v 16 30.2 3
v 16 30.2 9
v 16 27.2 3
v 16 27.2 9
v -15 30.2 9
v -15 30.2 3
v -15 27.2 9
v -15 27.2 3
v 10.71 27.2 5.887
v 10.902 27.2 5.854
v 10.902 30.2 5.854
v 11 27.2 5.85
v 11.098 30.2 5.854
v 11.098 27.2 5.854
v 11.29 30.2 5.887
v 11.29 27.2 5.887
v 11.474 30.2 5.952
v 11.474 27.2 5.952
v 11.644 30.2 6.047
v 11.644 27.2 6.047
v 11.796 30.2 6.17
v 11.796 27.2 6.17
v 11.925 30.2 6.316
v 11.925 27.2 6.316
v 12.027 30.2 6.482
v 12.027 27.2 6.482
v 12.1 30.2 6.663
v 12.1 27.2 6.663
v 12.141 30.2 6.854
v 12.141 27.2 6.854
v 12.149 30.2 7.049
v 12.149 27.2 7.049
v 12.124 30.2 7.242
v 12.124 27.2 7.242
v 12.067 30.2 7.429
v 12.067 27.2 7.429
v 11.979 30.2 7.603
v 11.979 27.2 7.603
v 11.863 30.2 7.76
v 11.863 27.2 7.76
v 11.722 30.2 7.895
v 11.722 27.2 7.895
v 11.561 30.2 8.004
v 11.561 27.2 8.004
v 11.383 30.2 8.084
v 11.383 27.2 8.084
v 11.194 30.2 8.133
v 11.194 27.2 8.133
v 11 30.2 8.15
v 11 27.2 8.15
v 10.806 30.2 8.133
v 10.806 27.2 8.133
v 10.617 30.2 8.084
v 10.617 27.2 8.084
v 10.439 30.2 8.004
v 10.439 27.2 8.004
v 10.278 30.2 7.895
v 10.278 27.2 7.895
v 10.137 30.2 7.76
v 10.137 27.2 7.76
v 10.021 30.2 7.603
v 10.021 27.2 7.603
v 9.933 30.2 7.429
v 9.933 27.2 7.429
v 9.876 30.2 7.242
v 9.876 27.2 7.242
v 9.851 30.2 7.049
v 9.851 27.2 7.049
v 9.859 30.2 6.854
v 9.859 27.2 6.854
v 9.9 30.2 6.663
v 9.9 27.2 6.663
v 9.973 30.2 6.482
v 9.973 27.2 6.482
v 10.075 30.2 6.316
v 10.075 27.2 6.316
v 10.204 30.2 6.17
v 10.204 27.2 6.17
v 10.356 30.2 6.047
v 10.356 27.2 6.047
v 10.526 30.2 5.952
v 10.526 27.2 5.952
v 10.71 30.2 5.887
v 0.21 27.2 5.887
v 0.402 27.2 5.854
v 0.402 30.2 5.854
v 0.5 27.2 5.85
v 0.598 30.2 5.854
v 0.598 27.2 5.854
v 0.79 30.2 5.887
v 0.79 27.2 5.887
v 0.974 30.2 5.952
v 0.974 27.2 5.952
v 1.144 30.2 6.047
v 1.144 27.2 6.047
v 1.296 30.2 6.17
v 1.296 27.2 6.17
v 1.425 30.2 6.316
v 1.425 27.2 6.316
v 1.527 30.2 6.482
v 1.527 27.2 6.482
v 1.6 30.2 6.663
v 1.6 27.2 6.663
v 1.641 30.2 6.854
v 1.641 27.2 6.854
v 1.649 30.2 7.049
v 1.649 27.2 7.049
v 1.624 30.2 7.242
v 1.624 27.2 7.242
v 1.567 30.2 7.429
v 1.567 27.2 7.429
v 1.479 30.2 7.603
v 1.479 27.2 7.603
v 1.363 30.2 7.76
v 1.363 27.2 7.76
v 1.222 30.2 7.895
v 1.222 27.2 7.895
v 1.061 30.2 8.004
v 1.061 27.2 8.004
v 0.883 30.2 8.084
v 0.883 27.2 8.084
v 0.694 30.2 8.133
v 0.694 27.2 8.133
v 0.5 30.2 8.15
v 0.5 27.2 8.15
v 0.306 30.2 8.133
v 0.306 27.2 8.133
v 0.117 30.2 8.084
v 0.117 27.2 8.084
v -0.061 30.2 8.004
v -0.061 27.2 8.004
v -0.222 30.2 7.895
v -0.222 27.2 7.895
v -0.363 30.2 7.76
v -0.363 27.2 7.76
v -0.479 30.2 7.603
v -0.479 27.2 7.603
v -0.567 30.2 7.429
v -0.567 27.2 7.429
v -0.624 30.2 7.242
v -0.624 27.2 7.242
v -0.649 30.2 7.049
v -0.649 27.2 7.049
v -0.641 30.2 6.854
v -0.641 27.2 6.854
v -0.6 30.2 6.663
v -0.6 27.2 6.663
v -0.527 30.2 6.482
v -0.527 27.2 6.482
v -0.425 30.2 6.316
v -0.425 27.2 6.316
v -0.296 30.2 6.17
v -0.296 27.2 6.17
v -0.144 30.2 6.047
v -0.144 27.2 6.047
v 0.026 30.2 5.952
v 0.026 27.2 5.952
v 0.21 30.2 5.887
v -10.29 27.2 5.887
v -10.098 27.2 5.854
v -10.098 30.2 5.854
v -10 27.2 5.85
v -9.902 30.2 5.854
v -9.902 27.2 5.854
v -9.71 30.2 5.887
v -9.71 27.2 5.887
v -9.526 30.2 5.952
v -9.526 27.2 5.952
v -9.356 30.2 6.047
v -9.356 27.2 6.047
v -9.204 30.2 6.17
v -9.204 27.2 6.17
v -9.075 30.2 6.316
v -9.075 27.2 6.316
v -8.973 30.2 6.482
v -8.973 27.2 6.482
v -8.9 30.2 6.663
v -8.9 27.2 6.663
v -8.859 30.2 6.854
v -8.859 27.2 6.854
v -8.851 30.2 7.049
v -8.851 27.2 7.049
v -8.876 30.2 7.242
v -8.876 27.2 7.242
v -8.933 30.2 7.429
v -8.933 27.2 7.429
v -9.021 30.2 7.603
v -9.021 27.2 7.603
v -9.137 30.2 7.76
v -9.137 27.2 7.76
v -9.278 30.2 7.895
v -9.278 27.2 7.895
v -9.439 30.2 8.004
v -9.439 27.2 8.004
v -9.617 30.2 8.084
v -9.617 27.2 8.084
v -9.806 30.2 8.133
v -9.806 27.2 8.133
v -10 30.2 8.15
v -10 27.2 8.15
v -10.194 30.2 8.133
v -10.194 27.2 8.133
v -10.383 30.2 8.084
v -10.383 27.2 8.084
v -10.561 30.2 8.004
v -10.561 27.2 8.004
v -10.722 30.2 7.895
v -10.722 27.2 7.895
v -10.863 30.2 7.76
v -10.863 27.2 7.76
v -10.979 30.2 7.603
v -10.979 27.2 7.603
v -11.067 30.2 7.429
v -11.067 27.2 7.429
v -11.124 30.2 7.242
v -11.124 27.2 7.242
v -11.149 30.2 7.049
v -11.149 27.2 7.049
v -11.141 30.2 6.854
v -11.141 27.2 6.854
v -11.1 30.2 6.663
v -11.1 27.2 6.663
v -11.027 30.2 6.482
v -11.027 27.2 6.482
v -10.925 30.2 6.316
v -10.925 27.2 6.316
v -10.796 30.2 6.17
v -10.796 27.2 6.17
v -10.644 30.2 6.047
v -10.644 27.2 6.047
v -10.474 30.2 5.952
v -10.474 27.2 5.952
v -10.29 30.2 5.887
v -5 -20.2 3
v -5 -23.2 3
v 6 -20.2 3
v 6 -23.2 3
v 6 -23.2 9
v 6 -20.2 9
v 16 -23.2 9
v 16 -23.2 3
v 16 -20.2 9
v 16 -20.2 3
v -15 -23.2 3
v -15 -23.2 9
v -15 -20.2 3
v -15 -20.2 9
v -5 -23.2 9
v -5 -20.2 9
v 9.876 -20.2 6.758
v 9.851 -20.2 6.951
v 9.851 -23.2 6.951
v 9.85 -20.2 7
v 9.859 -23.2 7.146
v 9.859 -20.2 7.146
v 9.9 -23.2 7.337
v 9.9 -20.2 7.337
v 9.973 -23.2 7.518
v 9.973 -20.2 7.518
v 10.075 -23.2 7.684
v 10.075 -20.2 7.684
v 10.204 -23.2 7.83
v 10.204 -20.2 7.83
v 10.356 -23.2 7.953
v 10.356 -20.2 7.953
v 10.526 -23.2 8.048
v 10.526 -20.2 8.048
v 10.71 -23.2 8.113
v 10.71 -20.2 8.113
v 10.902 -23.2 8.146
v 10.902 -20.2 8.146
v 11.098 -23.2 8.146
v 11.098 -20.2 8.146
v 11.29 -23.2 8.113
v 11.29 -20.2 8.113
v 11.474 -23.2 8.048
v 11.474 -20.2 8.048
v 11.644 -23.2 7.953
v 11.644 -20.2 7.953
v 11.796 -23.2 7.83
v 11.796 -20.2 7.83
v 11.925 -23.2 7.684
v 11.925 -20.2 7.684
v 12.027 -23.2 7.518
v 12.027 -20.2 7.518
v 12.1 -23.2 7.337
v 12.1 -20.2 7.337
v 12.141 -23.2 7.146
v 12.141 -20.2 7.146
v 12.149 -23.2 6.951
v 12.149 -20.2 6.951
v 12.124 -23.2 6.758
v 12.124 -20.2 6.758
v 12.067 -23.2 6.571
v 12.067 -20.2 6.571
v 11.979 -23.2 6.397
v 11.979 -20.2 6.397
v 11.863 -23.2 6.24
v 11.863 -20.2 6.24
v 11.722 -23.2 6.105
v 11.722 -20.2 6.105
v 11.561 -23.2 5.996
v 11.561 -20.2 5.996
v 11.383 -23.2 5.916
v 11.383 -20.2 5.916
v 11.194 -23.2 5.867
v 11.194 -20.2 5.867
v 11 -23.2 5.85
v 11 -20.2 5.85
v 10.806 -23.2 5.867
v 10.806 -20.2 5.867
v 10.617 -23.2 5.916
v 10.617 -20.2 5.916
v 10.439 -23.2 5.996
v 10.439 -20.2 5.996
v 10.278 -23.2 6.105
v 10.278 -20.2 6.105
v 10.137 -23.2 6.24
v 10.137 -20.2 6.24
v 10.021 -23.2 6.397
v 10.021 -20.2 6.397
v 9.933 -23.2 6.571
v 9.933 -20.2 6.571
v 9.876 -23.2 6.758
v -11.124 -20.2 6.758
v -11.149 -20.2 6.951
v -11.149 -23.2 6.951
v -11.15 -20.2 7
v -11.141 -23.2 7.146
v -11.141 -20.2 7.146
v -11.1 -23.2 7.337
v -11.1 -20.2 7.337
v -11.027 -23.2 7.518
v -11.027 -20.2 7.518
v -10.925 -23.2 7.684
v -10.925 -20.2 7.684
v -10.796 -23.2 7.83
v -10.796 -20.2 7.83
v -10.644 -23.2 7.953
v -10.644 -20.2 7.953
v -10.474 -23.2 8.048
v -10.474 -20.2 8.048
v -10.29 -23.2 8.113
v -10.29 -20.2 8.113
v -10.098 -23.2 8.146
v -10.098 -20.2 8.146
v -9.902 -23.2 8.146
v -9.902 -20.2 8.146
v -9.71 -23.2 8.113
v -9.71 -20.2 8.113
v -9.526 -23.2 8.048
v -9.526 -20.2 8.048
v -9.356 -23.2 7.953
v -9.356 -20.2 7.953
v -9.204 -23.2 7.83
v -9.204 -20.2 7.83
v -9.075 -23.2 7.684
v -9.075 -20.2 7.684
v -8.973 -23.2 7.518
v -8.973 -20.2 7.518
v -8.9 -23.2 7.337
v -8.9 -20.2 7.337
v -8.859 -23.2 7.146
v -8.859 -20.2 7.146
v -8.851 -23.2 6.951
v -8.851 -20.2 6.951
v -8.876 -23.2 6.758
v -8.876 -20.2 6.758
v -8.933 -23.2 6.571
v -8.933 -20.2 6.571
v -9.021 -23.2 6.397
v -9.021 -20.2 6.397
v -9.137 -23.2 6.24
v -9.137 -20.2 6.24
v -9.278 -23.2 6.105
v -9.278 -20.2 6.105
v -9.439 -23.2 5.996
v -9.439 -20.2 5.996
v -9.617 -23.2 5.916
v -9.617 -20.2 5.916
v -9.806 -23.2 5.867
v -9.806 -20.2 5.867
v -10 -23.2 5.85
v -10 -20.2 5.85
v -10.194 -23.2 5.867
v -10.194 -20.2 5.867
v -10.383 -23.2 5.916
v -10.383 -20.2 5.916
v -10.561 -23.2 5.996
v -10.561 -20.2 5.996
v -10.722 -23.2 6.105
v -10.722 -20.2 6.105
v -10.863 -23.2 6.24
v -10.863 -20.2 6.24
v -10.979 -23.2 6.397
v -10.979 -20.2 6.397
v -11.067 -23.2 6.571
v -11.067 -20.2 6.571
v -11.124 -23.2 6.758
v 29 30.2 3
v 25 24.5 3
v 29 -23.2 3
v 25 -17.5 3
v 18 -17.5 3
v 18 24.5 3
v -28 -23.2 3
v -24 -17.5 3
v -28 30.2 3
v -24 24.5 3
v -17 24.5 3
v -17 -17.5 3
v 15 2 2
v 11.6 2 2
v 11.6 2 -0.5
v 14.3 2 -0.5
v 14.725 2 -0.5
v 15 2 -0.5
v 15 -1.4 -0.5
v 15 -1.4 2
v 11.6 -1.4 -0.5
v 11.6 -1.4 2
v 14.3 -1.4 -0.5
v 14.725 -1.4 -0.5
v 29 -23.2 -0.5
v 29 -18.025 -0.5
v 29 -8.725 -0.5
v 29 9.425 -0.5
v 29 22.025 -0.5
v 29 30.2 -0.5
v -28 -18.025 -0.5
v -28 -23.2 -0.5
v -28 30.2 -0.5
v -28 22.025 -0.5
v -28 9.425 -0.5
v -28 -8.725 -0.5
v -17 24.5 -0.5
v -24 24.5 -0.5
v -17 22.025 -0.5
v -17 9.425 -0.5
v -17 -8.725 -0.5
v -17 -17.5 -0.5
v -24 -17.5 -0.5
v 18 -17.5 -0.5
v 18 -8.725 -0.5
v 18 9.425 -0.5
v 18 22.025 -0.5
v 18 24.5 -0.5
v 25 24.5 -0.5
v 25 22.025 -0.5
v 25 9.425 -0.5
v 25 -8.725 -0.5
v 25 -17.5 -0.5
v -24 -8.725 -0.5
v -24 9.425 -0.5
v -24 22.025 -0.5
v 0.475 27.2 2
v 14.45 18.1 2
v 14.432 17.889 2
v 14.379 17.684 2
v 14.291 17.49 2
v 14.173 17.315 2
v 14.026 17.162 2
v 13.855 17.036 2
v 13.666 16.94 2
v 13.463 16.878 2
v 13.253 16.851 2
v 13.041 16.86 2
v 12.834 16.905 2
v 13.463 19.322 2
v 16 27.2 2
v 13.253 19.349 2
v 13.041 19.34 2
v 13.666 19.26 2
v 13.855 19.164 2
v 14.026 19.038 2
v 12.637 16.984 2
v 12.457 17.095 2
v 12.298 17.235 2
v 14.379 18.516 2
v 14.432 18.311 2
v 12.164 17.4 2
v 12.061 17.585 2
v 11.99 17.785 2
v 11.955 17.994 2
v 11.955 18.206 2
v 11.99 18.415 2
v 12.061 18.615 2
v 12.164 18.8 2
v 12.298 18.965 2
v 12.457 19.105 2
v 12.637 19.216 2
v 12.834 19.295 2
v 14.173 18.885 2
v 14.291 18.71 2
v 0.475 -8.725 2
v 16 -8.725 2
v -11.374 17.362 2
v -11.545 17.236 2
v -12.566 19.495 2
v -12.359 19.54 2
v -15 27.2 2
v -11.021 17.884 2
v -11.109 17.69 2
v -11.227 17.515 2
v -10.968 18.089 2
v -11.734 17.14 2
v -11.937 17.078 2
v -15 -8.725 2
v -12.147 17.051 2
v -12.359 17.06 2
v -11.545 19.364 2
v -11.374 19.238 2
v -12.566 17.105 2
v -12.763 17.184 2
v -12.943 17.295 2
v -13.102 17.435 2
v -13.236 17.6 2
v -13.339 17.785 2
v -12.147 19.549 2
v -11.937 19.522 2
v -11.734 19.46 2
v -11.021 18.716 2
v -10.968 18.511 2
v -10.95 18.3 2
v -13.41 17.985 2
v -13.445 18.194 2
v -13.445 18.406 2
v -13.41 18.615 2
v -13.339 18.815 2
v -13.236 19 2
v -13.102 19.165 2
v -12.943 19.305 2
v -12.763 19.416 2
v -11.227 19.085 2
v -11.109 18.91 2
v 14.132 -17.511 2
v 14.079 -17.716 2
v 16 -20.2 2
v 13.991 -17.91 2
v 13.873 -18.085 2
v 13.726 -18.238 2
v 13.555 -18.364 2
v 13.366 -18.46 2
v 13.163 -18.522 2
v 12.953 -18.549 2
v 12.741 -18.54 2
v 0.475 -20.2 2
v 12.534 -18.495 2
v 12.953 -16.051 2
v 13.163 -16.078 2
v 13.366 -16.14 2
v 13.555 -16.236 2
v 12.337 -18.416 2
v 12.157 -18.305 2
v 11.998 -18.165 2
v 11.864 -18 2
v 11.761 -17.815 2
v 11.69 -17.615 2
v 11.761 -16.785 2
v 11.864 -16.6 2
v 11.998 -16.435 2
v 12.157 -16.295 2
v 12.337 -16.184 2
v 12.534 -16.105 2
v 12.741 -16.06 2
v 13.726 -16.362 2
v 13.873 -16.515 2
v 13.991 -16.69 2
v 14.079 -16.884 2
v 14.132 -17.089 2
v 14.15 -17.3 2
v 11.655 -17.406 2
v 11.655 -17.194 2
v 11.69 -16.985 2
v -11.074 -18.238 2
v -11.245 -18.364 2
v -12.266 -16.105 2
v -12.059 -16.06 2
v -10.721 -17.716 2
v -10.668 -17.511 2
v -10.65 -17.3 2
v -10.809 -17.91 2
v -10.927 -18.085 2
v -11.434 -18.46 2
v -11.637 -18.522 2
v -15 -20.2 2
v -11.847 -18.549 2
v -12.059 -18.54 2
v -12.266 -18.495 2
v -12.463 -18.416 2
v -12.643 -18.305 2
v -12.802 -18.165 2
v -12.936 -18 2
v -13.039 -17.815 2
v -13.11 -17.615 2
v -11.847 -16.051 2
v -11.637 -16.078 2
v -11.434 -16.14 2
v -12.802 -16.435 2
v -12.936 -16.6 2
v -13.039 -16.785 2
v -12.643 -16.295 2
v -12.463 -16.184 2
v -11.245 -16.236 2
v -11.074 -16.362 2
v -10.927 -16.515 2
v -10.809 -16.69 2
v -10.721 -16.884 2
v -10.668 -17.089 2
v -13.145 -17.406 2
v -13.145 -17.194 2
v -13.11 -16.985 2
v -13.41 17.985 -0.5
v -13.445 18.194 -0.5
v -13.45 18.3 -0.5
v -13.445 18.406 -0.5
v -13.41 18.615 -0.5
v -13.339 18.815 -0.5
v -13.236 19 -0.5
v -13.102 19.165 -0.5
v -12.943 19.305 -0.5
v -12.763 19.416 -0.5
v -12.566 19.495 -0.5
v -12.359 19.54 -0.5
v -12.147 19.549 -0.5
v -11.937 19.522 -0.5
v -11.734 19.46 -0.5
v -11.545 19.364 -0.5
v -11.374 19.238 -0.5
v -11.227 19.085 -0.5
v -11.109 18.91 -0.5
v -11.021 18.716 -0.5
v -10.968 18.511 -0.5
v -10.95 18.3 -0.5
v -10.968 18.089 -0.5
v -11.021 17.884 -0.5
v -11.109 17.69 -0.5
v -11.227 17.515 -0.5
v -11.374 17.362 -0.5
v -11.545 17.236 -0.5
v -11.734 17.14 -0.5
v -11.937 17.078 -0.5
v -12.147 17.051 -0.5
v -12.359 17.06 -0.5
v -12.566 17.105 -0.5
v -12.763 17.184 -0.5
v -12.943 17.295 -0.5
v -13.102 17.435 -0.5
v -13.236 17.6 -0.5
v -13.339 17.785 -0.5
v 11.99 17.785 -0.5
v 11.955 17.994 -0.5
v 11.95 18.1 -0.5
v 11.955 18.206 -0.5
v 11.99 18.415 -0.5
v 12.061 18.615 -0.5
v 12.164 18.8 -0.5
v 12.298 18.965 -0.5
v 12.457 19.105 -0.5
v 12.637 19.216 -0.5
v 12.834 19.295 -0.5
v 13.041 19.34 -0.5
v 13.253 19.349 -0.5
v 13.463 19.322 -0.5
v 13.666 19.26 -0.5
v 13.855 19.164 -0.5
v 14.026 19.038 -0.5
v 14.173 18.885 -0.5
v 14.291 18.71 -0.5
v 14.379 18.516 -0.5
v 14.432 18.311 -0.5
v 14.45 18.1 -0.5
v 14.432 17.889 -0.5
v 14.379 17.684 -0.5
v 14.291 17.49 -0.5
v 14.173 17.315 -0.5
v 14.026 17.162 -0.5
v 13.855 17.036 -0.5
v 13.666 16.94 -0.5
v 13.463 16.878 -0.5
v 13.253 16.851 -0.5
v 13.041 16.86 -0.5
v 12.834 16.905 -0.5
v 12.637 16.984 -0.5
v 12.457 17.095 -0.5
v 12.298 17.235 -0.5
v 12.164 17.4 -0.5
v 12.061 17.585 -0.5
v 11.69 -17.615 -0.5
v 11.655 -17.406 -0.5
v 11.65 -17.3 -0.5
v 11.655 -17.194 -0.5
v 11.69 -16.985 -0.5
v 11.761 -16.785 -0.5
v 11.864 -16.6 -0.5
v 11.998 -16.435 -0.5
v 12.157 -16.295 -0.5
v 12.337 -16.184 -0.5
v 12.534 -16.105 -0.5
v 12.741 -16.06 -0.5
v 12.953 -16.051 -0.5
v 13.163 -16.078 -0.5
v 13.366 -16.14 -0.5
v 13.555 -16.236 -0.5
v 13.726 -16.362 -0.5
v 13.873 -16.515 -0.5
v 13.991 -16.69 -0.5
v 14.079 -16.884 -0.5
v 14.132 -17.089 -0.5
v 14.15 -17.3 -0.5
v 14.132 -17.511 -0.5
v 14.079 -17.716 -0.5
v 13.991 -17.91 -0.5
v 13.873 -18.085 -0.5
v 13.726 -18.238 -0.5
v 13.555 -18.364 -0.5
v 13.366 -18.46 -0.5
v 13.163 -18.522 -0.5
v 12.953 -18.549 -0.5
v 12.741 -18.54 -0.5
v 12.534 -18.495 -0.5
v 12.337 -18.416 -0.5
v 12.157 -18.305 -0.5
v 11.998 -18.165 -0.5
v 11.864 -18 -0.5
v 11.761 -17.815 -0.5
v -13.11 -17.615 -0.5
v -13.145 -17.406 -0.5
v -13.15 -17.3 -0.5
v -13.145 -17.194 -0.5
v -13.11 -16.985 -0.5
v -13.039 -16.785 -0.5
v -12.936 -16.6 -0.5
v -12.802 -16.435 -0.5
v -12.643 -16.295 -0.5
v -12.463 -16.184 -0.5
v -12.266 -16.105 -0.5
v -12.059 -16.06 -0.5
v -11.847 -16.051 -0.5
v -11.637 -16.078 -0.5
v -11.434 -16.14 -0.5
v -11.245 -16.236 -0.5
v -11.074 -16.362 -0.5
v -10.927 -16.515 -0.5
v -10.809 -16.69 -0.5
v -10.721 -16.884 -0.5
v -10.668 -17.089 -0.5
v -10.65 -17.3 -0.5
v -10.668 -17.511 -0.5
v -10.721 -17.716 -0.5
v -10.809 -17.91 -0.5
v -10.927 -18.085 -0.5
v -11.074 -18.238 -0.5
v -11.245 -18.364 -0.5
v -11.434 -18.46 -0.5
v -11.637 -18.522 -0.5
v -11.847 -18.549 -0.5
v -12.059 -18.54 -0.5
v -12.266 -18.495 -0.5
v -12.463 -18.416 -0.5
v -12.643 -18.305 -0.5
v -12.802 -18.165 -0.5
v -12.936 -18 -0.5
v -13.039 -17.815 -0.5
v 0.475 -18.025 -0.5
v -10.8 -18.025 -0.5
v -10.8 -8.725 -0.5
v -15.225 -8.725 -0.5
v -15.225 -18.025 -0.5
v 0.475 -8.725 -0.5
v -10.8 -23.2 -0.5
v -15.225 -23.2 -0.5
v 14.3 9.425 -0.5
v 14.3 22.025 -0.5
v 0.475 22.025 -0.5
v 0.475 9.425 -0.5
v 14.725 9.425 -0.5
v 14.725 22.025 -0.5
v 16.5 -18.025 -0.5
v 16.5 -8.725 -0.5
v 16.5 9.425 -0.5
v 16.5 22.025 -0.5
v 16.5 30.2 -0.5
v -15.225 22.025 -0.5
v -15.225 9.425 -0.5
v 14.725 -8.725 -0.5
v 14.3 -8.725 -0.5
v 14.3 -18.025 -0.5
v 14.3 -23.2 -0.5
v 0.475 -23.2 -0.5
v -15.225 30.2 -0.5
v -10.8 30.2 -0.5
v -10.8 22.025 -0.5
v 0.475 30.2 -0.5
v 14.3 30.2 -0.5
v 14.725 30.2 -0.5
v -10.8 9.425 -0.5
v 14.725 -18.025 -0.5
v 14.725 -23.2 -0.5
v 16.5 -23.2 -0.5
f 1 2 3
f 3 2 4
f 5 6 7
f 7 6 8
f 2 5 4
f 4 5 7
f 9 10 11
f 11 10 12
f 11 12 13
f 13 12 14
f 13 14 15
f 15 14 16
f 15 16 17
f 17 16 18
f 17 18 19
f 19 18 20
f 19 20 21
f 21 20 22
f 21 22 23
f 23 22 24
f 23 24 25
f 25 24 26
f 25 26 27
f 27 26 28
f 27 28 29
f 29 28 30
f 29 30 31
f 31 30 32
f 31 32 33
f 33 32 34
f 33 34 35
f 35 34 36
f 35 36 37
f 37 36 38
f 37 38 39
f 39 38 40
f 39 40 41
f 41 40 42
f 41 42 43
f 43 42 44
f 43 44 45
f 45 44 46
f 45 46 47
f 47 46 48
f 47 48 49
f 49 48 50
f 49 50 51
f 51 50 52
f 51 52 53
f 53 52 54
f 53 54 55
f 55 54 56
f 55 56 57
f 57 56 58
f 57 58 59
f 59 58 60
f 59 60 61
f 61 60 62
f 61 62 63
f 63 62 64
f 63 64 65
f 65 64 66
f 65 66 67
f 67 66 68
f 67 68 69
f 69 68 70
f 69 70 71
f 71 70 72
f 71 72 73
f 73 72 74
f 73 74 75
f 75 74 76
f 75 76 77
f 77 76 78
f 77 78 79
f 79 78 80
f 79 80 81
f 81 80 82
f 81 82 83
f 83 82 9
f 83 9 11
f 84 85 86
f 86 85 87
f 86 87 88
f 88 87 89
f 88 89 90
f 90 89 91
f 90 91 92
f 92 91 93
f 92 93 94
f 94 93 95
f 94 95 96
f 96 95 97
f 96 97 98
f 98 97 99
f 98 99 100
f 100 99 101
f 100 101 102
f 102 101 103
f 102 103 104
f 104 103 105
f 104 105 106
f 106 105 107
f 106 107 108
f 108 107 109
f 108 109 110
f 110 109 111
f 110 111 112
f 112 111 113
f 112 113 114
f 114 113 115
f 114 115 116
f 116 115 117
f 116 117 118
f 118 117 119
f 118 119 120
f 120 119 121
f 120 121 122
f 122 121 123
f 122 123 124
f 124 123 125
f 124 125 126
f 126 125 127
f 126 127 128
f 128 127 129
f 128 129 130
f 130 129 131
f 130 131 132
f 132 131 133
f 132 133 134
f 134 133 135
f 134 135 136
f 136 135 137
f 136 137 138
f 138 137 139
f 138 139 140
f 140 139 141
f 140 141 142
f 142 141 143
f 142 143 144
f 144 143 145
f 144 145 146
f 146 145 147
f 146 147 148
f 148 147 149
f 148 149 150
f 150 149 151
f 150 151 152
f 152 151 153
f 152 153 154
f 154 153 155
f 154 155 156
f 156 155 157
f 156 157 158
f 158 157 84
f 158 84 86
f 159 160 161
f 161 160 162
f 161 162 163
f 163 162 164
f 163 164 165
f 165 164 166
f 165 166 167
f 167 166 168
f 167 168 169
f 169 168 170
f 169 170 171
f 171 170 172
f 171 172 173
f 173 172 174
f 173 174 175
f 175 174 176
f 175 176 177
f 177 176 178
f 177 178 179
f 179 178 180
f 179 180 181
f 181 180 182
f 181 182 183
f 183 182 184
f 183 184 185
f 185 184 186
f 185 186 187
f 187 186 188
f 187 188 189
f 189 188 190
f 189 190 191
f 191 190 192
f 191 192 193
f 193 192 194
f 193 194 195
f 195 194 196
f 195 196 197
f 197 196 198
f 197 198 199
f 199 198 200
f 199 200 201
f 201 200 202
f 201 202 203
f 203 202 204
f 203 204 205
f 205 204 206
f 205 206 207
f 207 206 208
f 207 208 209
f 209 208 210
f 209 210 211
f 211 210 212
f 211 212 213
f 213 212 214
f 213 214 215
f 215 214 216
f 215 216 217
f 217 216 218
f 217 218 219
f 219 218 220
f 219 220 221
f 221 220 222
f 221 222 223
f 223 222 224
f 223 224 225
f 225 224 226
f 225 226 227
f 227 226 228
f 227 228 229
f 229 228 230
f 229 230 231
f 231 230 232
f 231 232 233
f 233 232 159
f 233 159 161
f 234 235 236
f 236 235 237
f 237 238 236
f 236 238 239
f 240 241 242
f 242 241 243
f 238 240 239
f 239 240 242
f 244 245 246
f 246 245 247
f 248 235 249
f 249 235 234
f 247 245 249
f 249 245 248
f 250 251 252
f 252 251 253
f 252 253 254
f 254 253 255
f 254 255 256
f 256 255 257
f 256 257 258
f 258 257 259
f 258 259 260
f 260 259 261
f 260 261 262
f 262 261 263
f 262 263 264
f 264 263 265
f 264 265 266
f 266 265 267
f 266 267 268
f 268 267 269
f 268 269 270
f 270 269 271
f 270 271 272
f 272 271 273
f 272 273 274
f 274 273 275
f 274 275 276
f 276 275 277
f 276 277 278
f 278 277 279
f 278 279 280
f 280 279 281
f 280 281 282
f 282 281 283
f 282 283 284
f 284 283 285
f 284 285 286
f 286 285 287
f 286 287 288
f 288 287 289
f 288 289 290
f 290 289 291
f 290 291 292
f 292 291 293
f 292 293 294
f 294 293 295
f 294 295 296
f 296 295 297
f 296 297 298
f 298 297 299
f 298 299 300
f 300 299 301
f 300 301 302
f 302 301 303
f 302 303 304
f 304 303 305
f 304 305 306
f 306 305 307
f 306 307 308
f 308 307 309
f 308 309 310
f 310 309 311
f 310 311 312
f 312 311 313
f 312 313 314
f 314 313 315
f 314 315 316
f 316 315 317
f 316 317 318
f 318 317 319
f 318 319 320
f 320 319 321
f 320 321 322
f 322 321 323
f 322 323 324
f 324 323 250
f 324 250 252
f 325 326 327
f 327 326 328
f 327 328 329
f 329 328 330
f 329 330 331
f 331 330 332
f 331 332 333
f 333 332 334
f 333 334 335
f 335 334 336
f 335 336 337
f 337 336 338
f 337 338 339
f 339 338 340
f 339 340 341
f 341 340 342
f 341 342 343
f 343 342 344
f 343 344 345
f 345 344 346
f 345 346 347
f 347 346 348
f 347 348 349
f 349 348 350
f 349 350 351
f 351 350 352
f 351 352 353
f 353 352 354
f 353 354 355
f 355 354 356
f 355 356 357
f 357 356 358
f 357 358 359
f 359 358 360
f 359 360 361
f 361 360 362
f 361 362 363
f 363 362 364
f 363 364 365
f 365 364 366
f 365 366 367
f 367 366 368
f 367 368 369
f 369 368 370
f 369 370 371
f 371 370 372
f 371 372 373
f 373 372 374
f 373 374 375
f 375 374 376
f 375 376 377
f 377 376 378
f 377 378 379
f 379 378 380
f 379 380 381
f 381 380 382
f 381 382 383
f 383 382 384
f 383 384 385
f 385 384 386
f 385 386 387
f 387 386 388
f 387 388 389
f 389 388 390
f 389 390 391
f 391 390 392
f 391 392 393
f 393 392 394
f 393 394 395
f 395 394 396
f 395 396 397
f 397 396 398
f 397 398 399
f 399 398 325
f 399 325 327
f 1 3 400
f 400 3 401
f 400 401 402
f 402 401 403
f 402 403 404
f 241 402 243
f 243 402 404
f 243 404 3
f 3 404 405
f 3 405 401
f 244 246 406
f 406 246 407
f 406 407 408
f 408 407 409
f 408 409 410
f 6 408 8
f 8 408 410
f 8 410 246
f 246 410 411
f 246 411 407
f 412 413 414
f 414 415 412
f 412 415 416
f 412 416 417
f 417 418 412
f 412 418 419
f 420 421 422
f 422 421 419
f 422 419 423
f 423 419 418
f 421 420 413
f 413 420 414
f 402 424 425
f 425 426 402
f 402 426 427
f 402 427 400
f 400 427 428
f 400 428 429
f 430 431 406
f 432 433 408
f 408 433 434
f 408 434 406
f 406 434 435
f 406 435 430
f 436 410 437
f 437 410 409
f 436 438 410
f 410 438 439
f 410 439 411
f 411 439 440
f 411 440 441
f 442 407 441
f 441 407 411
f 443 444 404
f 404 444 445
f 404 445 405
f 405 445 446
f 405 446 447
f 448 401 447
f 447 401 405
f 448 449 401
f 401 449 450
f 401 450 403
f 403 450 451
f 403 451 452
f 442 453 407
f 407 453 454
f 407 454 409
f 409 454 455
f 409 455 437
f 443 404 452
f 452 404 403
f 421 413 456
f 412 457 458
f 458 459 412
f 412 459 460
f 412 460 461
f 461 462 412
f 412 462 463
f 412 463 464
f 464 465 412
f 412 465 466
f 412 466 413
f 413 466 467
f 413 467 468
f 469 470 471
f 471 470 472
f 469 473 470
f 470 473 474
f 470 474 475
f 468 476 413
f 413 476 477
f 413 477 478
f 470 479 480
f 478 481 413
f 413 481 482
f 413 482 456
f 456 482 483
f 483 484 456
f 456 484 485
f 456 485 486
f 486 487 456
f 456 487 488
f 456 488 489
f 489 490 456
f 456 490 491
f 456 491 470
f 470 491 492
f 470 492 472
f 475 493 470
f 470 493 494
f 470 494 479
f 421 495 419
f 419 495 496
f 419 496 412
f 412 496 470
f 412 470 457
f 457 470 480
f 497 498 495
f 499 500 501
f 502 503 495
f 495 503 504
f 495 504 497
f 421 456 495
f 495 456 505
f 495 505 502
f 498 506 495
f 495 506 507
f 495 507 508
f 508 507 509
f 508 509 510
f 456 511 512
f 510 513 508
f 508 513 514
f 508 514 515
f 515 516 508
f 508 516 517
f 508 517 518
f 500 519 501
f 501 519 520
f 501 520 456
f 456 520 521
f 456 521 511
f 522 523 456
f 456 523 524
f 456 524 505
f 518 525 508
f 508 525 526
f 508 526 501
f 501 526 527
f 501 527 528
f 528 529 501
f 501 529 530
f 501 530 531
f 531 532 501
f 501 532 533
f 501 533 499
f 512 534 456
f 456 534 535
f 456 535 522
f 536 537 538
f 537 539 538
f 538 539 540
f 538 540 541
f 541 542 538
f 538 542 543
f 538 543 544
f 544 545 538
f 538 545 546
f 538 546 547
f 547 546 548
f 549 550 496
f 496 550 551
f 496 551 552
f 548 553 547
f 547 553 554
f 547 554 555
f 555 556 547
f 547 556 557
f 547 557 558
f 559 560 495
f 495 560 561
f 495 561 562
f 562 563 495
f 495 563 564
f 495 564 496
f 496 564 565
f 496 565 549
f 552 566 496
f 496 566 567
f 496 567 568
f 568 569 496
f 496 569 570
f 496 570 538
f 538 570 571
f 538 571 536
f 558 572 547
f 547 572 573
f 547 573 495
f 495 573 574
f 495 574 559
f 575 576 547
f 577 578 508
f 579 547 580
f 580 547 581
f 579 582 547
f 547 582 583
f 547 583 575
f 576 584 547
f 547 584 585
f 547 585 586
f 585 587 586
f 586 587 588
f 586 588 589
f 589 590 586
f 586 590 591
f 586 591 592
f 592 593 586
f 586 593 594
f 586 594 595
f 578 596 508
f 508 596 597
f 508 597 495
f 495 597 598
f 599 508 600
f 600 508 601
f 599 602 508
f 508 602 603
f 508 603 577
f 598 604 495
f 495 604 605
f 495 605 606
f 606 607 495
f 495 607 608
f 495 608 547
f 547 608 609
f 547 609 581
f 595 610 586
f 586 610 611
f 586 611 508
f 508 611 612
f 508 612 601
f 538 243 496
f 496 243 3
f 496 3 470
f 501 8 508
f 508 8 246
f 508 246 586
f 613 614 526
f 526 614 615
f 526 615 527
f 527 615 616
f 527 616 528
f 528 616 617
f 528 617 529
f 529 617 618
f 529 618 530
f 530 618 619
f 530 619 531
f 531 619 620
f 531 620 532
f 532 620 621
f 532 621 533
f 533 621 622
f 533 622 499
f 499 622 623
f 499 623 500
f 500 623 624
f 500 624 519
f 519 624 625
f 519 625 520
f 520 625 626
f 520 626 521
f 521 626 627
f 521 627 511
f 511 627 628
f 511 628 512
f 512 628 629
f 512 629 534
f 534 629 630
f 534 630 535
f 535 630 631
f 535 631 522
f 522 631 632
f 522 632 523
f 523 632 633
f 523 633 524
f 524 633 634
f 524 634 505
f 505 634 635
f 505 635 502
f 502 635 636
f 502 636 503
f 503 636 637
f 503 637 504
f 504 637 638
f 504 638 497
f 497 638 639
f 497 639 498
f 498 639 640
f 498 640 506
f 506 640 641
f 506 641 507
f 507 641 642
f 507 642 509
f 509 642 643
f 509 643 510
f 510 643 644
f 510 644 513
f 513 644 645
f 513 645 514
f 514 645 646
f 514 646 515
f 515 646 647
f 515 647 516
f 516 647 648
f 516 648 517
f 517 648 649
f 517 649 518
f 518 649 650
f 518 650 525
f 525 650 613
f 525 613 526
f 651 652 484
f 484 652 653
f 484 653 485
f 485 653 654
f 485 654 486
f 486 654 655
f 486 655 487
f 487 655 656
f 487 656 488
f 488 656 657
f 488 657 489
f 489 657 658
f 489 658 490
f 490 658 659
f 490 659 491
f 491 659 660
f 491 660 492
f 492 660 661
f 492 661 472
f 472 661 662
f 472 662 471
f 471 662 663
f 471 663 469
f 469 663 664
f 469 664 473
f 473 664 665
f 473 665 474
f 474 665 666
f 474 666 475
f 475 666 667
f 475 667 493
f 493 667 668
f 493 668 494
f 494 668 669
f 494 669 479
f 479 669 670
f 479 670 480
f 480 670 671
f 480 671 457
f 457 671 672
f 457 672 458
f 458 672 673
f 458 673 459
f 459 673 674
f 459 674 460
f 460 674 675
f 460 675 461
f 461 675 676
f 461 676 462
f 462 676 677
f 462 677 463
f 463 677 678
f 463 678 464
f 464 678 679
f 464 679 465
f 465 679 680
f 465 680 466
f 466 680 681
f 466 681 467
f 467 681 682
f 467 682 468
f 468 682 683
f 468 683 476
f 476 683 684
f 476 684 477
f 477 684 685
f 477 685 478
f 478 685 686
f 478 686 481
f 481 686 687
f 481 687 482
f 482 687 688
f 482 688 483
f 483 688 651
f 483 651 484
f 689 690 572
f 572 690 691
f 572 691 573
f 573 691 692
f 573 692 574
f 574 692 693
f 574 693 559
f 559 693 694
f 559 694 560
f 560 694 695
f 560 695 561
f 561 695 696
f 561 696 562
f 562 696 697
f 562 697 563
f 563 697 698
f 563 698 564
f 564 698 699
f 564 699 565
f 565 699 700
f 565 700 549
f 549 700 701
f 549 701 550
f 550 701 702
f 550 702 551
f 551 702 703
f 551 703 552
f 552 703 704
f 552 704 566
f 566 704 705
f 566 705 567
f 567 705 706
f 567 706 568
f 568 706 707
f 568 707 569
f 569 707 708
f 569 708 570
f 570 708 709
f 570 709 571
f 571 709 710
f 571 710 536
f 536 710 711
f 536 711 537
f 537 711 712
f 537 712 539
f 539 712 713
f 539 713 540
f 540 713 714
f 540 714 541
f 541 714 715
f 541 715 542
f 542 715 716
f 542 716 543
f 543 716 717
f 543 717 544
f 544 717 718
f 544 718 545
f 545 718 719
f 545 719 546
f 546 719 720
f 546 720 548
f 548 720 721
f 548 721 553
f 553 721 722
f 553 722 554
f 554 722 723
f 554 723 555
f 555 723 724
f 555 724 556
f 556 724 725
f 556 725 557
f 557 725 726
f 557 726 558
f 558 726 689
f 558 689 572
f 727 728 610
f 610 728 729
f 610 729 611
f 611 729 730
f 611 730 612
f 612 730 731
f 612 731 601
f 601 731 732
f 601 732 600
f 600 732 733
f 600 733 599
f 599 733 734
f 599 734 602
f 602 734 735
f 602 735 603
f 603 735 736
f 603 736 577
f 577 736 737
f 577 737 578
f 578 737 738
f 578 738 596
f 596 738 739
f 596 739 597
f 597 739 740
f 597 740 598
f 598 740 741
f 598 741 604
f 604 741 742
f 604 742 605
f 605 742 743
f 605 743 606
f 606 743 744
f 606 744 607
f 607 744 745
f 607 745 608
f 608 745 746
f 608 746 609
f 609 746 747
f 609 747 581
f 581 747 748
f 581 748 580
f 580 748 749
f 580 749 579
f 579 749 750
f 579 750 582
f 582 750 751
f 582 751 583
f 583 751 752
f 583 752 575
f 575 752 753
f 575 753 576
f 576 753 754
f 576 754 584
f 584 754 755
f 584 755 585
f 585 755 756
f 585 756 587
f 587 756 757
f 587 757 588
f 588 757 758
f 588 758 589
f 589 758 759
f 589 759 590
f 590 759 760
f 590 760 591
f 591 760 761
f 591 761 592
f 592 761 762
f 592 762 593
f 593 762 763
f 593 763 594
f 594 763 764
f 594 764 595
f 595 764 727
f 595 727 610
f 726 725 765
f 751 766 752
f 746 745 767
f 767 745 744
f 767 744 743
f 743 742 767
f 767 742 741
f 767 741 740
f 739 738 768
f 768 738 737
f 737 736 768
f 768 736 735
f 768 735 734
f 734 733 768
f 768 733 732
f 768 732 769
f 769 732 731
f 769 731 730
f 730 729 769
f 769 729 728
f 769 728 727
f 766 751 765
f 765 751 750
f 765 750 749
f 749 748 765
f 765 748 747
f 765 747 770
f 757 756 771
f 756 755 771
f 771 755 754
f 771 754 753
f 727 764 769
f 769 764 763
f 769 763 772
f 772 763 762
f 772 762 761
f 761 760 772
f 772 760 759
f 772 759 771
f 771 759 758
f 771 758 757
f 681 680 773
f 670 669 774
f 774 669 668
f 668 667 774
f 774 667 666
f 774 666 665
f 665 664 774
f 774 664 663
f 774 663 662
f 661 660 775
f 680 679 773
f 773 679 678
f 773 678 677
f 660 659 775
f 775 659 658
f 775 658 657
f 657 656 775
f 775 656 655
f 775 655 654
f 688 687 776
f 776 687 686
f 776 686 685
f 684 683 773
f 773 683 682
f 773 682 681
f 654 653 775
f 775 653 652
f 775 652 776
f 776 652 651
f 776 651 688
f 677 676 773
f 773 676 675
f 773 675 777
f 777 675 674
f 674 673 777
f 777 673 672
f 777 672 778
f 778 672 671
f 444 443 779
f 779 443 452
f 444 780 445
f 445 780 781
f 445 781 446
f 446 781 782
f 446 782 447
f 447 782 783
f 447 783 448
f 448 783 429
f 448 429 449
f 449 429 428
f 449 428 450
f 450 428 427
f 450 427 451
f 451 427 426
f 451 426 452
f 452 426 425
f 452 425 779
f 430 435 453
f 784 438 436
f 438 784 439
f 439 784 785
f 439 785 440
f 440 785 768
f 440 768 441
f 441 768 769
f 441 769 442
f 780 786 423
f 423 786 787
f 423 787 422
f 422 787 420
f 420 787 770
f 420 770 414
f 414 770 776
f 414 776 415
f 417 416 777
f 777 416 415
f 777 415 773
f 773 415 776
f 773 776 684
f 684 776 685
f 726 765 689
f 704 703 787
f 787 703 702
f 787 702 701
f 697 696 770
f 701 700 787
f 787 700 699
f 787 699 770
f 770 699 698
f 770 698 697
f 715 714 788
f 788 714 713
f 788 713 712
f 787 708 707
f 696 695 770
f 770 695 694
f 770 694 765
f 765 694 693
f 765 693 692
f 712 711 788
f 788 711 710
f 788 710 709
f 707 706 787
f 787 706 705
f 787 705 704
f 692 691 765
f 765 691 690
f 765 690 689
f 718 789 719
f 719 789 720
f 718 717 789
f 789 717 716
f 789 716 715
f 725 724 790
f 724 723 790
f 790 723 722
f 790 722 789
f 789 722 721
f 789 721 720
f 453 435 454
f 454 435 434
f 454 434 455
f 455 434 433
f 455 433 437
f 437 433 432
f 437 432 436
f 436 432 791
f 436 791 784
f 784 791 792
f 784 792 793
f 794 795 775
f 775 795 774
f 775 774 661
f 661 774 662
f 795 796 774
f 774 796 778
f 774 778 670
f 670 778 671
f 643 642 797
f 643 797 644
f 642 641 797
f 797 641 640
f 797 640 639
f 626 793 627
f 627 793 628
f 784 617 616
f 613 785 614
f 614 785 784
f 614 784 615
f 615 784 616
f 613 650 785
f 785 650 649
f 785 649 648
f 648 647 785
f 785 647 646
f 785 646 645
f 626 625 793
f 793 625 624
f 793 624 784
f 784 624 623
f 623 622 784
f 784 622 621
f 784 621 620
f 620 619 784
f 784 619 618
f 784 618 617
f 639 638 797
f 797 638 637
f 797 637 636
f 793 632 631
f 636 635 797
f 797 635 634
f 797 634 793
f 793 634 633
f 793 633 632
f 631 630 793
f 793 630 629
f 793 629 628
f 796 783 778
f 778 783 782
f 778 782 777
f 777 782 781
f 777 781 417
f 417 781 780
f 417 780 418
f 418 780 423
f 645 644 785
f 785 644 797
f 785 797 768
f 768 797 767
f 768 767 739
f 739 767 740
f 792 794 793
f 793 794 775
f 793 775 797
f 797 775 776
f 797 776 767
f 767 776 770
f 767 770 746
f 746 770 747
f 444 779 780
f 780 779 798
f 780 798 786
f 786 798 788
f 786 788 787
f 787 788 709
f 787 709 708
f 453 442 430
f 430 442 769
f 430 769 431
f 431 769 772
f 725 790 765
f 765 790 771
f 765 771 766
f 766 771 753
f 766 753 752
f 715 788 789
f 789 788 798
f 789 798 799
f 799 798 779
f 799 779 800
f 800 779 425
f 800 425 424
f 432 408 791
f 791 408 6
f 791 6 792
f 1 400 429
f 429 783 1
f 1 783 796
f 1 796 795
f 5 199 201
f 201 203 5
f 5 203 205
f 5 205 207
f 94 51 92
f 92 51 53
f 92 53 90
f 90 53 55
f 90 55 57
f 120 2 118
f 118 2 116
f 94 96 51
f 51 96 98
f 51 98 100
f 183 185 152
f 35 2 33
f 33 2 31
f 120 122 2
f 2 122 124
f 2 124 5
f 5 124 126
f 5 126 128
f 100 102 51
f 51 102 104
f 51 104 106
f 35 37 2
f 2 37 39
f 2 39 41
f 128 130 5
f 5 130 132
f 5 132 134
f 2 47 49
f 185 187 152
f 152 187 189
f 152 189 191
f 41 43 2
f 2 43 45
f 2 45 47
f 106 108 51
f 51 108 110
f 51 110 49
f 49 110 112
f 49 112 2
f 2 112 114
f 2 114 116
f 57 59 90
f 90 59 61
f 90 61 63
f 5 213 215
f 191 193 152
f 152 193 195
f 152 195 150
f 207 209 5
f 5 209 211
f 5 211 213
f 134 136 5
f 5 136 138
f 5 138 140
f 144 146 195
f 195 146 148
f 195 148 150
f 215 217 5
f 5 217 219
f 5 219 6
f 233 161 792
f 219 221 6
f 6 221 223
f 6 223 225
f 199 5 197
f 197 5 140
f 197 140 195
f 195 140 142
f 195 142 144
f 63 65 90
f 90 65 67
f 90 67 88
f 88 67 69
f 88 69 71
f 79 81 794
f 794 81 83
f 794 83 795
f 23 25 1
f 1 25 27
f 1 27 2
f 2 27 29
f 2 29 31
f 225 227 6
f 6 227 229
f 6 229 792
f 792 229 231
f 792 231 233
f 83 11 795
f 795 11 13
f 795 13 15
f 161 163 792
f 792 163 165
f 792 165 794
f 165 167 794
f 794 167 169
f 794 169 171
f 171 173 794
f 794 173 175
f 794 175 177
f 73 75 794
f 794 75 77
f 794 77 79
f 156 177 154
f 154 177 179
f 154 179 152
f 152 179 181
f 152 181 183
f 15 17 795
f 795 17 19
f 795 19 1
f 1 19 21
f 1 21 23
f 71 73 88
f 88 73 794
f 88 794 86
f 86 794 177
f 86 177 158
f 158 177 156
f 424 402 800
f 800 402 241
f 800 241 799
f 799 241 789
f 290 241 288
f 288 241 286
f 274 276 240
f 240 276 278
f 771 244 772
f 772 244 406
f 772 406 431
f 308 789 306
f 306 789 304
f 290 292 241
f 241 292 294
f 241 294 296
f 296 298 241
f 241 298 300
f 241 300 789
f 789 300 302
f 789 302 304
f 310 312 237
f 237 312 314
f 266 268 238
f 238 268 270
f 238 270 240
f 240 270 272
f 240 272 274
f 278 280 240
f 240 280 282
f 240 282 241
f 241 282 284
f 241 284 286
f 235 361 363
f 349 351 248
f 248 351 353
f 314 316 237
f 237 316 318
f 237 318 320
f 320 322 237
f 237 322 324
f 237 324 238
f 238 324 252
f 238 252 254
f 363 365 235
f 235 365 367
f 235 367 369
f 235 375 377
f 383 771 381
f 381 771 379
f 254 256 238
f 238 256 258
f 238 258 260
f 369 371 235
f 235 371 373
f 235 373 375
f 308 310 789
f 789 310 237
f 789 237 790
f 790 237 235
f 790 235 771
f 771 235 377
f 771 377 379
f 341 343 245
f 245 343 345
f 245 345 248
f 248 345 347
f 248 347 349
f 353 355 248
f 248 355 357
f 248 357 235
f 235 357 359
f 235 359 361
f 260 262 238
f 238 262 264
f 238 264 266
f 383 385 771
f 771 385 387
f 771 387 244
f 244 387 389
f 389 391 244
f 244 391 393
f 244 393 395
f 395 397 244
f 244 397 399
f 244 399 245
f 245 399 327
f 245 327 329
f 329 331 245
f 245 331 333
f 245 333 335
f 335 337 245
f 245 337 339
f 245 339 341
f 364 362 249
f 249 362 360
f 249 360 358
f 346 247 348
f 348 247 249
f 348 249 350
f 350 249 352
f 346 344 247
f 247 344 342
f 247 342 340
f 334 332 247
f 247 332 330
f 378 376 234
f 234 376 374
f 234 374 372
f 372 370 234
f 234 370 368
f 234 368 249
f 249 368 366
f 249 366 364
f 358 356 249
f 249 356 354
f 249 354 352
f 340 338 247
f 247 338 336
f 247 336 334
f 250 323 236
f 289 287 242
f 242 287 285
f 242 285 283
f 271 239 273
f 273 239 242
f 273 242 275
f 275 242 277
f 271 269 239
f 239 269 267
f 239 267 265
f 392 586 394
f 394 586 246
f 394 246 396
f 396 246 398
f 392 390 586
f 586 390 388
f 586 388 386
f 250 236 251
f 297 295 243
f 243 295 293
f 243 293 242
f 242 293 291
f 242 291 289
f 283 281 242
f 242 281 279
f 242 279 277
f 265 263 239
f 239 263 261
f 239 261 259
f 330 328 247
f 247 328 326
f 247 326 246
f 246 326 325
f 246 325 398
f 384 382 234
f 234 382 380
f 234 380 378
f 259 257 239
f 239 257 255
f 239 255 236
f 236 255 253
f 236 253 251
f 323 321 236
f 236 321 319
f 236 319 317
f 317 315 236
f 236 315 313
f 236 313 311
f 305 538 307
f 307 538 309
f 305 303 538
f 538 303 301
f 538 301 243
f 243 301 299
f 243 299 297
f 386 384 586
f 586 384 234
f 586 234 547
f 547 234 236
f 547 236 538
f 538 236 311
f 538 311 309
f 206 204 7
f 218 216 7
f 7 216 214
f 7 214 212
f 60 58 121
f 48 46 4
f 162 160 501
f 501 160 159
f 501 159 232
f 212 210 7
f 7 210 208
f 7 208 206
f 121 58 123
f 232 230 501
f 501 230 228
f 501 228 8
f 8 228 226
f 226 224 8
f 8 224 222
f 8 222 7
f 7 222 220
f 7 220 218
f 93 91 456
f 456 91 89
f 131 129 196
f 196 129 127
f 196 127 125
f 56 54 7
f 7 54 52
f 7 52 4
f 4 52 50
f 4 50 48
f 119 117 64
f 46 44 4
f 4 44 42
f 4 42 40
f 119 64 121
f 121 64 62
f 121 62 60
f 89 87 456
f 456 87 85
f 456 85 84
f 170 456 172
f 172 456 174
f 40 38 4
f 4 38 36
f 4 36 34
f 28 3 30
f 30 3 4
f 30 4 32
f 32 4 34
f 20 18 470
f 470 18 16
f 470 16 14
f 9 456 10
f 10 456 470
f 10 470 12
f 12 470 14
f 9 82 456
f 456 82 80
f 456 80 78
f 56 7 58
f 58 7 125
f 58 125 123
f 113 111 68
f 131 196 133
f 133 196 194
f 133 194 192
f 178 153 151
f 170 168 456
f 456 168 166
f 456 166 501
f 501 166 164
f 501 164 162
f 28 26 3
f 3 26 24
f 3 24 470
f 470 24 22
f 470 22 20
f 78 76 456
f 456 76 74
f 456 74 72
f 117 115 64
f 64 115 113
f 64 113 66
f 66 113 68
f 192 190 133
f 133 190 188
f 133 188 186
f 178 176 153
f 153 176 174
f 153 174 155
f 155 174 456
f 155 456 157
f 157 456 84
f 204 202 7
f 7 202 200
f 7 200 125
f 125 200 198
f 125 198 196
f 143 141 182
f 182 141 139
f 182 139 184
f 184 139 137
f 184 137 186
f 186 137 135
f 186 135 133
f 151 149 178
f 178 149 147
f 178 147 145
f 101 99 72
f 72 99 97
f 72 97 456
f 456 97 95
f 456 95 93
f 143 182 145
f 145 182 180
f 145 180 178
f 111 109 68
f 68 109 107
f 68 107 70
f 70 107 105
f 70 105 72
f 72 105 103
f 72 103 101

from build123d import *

# Parameters (mm, degrees)
SKETCH_1_W          = 57
SKETCH_1_H          = 51
SKETCH_1_W_2        = 3.4
SKETCH_1_H_2        = 3.4
SKETCH_1_W_3        = 7
SKETCH_1_H_3        = 42
EXTRUDE_1_DEPTH     = 3
SKETCH_2_W          = 31
SKETCH_2_H          = 47
CUT_EXTRUDE_1_DEPTH = 1
SKETCH_3_R          = 1.25
CUT_EXTRUDE_2_DEPTH = 42.060930335
SKETCH_5_W          = 57
SKETCH_5_H          = 3
EXTRUDE_2_DEPTH     = 1
SKETCH_6_W          = 57
SKETCH_6_H          = 3
EXTRUDE_3_DEPTH     = 1
SKETCH_7_W          = 10
SKETCH_7_H          = 3
EXTRUDE_4_DEPTH     = 6
SKETCH_8_W          = 31
SKETCH_8_H          = 3
EXTRUDE_5_DEPTH     = 6
CUT_EXTRUDE_3_REACH = 63.082
SKETCH_9_R          = 1.15
CUT_EXTRUDE_4_REACH = 63.082
SKETCH_10_R         = 1.15
SKETCH_12_W         = 57
SKETCH_12_H         = 53
SKETCH_12_R         = 1.25
SKETCH_12_W_2       = 3.4
SKETCH_12_H_2       = 3.4
SKETCH_12_W_3       = 7
SKETCH_12_H_3       = 42
EXTRUDE_6_DEPTH     = 0.5
EXTRUDE_START       = 0.2
SKETCH_13_R         = 1.15
EXTRUDE_7_DEPTH     = 0.2
SKETCH_14_R         = 1.15
EXTRUDE_8_DEPTH     = 0.2
SKETCH_15_R         = 1.15
CUT_EXTRUDE_5_DEPTH = 0.2
CUT_EXTRUDE_START   = -0.2
SKETCH_16_R         = 1.15
CUT_EXTRUDE_6_DEPTH = 0.2


with BuildPart() as part:
    # 草图1 → 凸台-拉伸1 (new body)
    with BuildSketch(Plane.XY):
        with Locations((0.5, 3.5)):
            Rectangle(SKETCH_1_W, SKETCH_1_H)
        with Locations((13.3, 0.3)):
            Rectangle(SKETCH_1_W_2, SKETCH_1_H_2, mode=Mode.SUBTRACT)
        with Locations((21.5, 3.5)):
            Rectangle(SKETCH_1_W_3, SKETCH_1_H_3, mode=Mode.SUBTRACT)
        with Locations((-20.5, 3.5)):
            Rectangle(SKETCH_1_W_3, SKETCH_1_H_3, mode=Mode.SUBTRACT)
    extrude(amount=EXTRUDE_1_DEPTH)

    # 草图2 → 切除-拉伸1 (cut)
    with BuildSketch(Plane.XY.offset(3)):
        with Locations((0.5, 3.5)):
            Rectangle(SKETCH_2_W, SKETCH_2_H)
    extrude(amount=-CUT_EXTRUDE_1_DEPTH, mode=Mode.SUBTRACT)

    # 草图3 → 切除-拉伸2 (cut, through all)
    with BuildSketch(Plane.XY.offset(2)):
        with Locations((-12.2, 18.3)):
            Circle(SKETCH_3_R)
        with Locations((13.2, 18.1)):
            Circle(SKETCH_3_R)
        with Locations((12.9, -17.3)):
            Circle(SKETCH_3_R)
        with Locations((-11.9, -17.3)):
            Circle(SKETCH_3_R)
    extrude(amount=-CUT_EXTRUDE_2_DEPTH, mode=Mode.SUBTRACT)

    # 草图5 → 凸台-拉伸2 (add)
    with BuildSketch(Plane(origin=(0, 29, 0), x_dir=(1, 0, 0), z_dir=(0, 1, 0))):
        with Locations((0.5, -1.5)):
            Rectangle(SKETCH_5_W, SKETCH_5_H)
    extrude(amount=EXTRUDE_2_DEPTH)

    # 草图6 → 凸台-拉伸3 (add)
    with BuildSketch(Plane(origin=(0, -22, 0), x_dir=(-1, 0, 0), z_dir=(0, -1, 0))):
        with Locations((-0.5, -1.5)):
            Rectangle(SKETCH_6_W, SKETCH_6_H)
    extrude(amount=EXTRUDE_3_DEPTH)

    # 草图7 → 凸台-拉伸4 (add)
    with BuildSketch(Plane.XY.offset(3)):
        with Locations((-10, -21.5)):
            Rectangle(SKETCH_7_W, SKETCH_7_H)
        with Locations((11, -21.5)):
            Rectangle(SKETCH_7_W, SKETCH_7_H)
    extrude(amount=EXTRUDE_4_DEPTH)

    # 草图8 → 凸台-拉伸5 (add)
    with BuildSketch(Plane.XY.offset(3)):
        with Locations((0.5, 28.5)):
            Rectangle(SKETCH_8_W, SKETCH_8_H)
    extrude(amount=EXTRUDE_5_DEPTH)

    # 草图9 → 切除-拉伸3 (cut, up to next)
    with BuildSketch(Plane.XZ.offset(23), mode=Mode.PRIVATE) as cut_extrude_3_sk1:
        with Locations(Location((-10, 7, 0), (0, 0, 270))):
            Circle(SKETCH_9_R)
    cut_extrude_3_tool1 = extrude(cut_extrude_3_sk1.sketch, amount=-CUT_EXTRUDE_3_REACH, mode=Mode.PRIVATE) & part.part
    # 草图9 → 切除-拉伸3 (cut, up to next)
    with BuildSketch(Plane.XZ.offset(23), mode=Mode.PRIVATE) as cut_extrude_3_sk2:
        with Locations(Location((11, 7, 0), (0, 0, 270))):
            Circle(SKETCH_9_R)
    cut_extrude_3_tool2 = extrude(cut_extrude_3_sk2.sketch, amount=-CUT_EXTRUDE_3_REACH, mode=Mode.PRIVATE) & part.part
    add(cut_extrude_3_tool1.solids().sort_by_distance((-10, -23, 7))[0], mode=Mode.SUBTRACT)
    add(cut_extrude_3_tool2.solids().sort_by_distance((11, -23, 7))[0], mode=Mode.SUBTRACT)

    # 草图10 → 切除-拉伸4 (cut, up to next)
    with BuildSketch(Plane(origin=(0, 30, 0), x_dir=(1, 0, 0), z_dir=(0, 1, 0)), mode=Mode.PRIVATE) as cut_extrude_4_sk1:
        with Locations(Location((-10, -7, 0), (0, 0, 90))):
            Circle(SKETCH_10_R)
    cut_extrude_4_tool1 = extrude(cut_extrude_4_sk1.sketch, amount=-CUT_EXTRUDE_4_REACH, mode=Mode.PRIVATE) & part.part
    # 草图10 → 切除-拉伸4 (cut, up to next)
    with BuildSketch(Plane(origin=(0, 30, 0), x_dir=(1, 0, 0), z_dir=(0, 1, 0)), mode=Mode.PRIVATE) as cut_extrude_4_sk2:
        with Locations(Location((0.5, -7, 0), (0, 0, 270))):
            Circle(SKETCH_10_R)
    cut_extrude_4_tool2 = extrude(cut_extrude_4_sk2.sketch, amount=-CUT_EXTRUDE_4_REACH, mode=Mode.PRIVATE) & part.part
    # 草图10 → 切除-拉伸4 (cut, up to next)
    with BuildSketch(Plane(origin=(0, 30, 0), x_dir=(1, 0, 0), z_dir=(0, 1, 0)), mode=Mode.PRIVATE) as cut_extrude_4_sk3:
        with Locations(Location((11, -7, 0), (0, 0, 90))):
            Circle(SKETCH_10_R)
    cut_extrude_4_tool3 = extrude(cut_extrude_4_sk3.sketch, amount=-CUT_EXTRUDE_4_REACH, mode=Mode.PRIVATE) & part.part
    add(cut_extrude_4_tool1.solids().sort_by_distance((-10, 30, 7))[0], mode=Mode.SUBTRACT)
    add(cut_extrude_4_tool2.solids().sort_by_distance((0.5, 30, 7))[0], mode=Mode.SUBTRACT)
    add(cut_extrude_4_tool3.solids().sort_by_distance((11, 30, 7))[0], mode=Mode.SUBTRACT)

    # 草图12 → 凸台-拉伸6 (add)
    with BuildSketch(Plane(origin=(0, 0, 0), x_dir=(-1, 0, 0), z_dir=(0, 0, -1))):
        with Locations((-0.5, 3.5)):
            Rectangle(SKETCH_12_W, SKETCH_12_H)
        with Locations(Location((-12.9, -17.3, 0), (0, 0, 180))):
            Circle(SKETCH_12_R, mode=Mode.SUBTRACT)
        with Locations(Location((12.2, 18.3, 0), (0, 0, 180))):
            Circle(SKETCH_12_R, mode=Mode.SUBTRACT)
        with Locations(Location((-13.2, 18.1, 0), (0, 0, 180))):
            Circle(SKETCH_12_R, mode=Mode.SUBTRACT)
        with Locations(Location((11.9, -17.3, 0), (0, 0, 180))):
            Circle(SKETCH_12_R, mode=Mode.SUBTRACT)
        with Locations((-13.3, 0.3)):
            Rectangle(SKETCH_12_W_2, SKETCH_12_H_2, mode=Mode.SUBTRACT)
        with Locations((20.5, 3.5)):
            Rectangle(SKETCH_12_W_3, SKETCH_12_H_3, mode=Mode.SUBTRACT)
        with Locations((-21.5, 3.5)):
            Rectangle(SKETCH_12_W_3, SKETCH_12_H_3, mode=Mode.SUBTRACT)
    extrude(amount=EXTRUDE_6_DEPTH)

    # 草图13 → 凸台-拉伸7 (add)
    with BuildSketch(Plane(origin=(0, 30, 0), x_dir=(1, 0, 0), z_dir=(0, 1, 0)).offset(EXTRUDE_START)):
        Polygon((16, -3), (29, -3), (29, 0.5), (-28, 0.5), (-28, -3), (-15, -3), (-15, -9), (16, -9), align=None)
        with Locations(Location((0.5, -7, 0), (0, 0, 270))):
            Circle(SKETCH_13_R, mode=Mode.SUBTRACT)
        with Locations(Location((11, -7, 0), (0, 0, 90))):
            Circle(SKETCH_13_R, mode=Mode.SUBTRACT)
        with Locations(Location((-10, -7, 0), (0, 0, 90))):
            Circle(SKETCH_13_R, mode=Mode.SUBTRACT)
    extrude(amount=-EXTRUDE_7_DEPTH)

    # 草图14 → 凸台-拉伸8 (add)
    with BuildSketch(Plane(origin=(0, -23, 0), x_dir=(-1, 0, 0), z_dir=(0, -1, 0))):
        Polygon((-29, 0.5), (-29, -3), (-16, -3), (-16, -9), (-6, -9), (-6, -3), (5, -3), (5, -9), (15, -9), (15, -3), (28, -3), (28, 0.5), align=None)
        with Locations(Location((-11, -7, 0), (0, 0, 90))):
            Circle(SKETCH_14_R, mode=Mode.SUBTRACT)
        with Locations(Location((10, -7, 0), (0, 0, 90))):
            Circle(SKETCH_14_R, mode=Mode.SUBTRACT)
    extrude(amount=EXTRUDE_8_DEPTH)

    # 草图15 → 切除-拉伸5 (cut)
    with BuildSketch(Plane(origin=(0, -20, 0), x_dir=(1, 0, 0), z_dir=(0, 1, 0))):
        Polygon((16, -2), (-15, -2), (-15, -3), (-15, -9), (-5, -9), (-5, -3), (6, -3), (6, -9), (16, -9), (16, -3), align=None)
        with Locations(Location((11, -7, 0), (0, 0, 90))):
            Circle(SKETCH_15_R, mode=Mode.SUBTRACT)
        with Locations(Location((-10, -7, 0), (0, 0, 90))):
            Circle(SKETCH_15_R, mode=Mode.SUBTRACT)
    extrude(amount=-CUT_EXTRUDE_5_DEPTH, mode=Mode.SUBTRACT)

    # 草图16 → 切除-拉伸6 (cut)
    with BuildSketch(Plane.XZ.offset(-27).offset(CUT_EXTRUDE_START)):
        Polygon((-15, 2), (16, 2), (16, 3), (16, 9), (-15, 9), (-15, 3), align=None)
        with Locations(Location((0.5, 7, 0), (0, 0, 90))):
            Circle(SKETCH_16_R, mode=Mode.SUBTRACT)
        with Locations(Location((11, 7, 0), (0, 0, 90))):
            Circle(SKETCH_16_R, mode=Mode.SUBTRACT)
        with Locations(Location((-10, 7, 0), (0, 0, 90))):
            Circle(SKETCH_16_R, mode=Mode.SUBTRACT)
    extrude(amount=CUT_EXTRUDE_6_DEPTH, mode=Mode.SUBTRACT)


solid = part.part
